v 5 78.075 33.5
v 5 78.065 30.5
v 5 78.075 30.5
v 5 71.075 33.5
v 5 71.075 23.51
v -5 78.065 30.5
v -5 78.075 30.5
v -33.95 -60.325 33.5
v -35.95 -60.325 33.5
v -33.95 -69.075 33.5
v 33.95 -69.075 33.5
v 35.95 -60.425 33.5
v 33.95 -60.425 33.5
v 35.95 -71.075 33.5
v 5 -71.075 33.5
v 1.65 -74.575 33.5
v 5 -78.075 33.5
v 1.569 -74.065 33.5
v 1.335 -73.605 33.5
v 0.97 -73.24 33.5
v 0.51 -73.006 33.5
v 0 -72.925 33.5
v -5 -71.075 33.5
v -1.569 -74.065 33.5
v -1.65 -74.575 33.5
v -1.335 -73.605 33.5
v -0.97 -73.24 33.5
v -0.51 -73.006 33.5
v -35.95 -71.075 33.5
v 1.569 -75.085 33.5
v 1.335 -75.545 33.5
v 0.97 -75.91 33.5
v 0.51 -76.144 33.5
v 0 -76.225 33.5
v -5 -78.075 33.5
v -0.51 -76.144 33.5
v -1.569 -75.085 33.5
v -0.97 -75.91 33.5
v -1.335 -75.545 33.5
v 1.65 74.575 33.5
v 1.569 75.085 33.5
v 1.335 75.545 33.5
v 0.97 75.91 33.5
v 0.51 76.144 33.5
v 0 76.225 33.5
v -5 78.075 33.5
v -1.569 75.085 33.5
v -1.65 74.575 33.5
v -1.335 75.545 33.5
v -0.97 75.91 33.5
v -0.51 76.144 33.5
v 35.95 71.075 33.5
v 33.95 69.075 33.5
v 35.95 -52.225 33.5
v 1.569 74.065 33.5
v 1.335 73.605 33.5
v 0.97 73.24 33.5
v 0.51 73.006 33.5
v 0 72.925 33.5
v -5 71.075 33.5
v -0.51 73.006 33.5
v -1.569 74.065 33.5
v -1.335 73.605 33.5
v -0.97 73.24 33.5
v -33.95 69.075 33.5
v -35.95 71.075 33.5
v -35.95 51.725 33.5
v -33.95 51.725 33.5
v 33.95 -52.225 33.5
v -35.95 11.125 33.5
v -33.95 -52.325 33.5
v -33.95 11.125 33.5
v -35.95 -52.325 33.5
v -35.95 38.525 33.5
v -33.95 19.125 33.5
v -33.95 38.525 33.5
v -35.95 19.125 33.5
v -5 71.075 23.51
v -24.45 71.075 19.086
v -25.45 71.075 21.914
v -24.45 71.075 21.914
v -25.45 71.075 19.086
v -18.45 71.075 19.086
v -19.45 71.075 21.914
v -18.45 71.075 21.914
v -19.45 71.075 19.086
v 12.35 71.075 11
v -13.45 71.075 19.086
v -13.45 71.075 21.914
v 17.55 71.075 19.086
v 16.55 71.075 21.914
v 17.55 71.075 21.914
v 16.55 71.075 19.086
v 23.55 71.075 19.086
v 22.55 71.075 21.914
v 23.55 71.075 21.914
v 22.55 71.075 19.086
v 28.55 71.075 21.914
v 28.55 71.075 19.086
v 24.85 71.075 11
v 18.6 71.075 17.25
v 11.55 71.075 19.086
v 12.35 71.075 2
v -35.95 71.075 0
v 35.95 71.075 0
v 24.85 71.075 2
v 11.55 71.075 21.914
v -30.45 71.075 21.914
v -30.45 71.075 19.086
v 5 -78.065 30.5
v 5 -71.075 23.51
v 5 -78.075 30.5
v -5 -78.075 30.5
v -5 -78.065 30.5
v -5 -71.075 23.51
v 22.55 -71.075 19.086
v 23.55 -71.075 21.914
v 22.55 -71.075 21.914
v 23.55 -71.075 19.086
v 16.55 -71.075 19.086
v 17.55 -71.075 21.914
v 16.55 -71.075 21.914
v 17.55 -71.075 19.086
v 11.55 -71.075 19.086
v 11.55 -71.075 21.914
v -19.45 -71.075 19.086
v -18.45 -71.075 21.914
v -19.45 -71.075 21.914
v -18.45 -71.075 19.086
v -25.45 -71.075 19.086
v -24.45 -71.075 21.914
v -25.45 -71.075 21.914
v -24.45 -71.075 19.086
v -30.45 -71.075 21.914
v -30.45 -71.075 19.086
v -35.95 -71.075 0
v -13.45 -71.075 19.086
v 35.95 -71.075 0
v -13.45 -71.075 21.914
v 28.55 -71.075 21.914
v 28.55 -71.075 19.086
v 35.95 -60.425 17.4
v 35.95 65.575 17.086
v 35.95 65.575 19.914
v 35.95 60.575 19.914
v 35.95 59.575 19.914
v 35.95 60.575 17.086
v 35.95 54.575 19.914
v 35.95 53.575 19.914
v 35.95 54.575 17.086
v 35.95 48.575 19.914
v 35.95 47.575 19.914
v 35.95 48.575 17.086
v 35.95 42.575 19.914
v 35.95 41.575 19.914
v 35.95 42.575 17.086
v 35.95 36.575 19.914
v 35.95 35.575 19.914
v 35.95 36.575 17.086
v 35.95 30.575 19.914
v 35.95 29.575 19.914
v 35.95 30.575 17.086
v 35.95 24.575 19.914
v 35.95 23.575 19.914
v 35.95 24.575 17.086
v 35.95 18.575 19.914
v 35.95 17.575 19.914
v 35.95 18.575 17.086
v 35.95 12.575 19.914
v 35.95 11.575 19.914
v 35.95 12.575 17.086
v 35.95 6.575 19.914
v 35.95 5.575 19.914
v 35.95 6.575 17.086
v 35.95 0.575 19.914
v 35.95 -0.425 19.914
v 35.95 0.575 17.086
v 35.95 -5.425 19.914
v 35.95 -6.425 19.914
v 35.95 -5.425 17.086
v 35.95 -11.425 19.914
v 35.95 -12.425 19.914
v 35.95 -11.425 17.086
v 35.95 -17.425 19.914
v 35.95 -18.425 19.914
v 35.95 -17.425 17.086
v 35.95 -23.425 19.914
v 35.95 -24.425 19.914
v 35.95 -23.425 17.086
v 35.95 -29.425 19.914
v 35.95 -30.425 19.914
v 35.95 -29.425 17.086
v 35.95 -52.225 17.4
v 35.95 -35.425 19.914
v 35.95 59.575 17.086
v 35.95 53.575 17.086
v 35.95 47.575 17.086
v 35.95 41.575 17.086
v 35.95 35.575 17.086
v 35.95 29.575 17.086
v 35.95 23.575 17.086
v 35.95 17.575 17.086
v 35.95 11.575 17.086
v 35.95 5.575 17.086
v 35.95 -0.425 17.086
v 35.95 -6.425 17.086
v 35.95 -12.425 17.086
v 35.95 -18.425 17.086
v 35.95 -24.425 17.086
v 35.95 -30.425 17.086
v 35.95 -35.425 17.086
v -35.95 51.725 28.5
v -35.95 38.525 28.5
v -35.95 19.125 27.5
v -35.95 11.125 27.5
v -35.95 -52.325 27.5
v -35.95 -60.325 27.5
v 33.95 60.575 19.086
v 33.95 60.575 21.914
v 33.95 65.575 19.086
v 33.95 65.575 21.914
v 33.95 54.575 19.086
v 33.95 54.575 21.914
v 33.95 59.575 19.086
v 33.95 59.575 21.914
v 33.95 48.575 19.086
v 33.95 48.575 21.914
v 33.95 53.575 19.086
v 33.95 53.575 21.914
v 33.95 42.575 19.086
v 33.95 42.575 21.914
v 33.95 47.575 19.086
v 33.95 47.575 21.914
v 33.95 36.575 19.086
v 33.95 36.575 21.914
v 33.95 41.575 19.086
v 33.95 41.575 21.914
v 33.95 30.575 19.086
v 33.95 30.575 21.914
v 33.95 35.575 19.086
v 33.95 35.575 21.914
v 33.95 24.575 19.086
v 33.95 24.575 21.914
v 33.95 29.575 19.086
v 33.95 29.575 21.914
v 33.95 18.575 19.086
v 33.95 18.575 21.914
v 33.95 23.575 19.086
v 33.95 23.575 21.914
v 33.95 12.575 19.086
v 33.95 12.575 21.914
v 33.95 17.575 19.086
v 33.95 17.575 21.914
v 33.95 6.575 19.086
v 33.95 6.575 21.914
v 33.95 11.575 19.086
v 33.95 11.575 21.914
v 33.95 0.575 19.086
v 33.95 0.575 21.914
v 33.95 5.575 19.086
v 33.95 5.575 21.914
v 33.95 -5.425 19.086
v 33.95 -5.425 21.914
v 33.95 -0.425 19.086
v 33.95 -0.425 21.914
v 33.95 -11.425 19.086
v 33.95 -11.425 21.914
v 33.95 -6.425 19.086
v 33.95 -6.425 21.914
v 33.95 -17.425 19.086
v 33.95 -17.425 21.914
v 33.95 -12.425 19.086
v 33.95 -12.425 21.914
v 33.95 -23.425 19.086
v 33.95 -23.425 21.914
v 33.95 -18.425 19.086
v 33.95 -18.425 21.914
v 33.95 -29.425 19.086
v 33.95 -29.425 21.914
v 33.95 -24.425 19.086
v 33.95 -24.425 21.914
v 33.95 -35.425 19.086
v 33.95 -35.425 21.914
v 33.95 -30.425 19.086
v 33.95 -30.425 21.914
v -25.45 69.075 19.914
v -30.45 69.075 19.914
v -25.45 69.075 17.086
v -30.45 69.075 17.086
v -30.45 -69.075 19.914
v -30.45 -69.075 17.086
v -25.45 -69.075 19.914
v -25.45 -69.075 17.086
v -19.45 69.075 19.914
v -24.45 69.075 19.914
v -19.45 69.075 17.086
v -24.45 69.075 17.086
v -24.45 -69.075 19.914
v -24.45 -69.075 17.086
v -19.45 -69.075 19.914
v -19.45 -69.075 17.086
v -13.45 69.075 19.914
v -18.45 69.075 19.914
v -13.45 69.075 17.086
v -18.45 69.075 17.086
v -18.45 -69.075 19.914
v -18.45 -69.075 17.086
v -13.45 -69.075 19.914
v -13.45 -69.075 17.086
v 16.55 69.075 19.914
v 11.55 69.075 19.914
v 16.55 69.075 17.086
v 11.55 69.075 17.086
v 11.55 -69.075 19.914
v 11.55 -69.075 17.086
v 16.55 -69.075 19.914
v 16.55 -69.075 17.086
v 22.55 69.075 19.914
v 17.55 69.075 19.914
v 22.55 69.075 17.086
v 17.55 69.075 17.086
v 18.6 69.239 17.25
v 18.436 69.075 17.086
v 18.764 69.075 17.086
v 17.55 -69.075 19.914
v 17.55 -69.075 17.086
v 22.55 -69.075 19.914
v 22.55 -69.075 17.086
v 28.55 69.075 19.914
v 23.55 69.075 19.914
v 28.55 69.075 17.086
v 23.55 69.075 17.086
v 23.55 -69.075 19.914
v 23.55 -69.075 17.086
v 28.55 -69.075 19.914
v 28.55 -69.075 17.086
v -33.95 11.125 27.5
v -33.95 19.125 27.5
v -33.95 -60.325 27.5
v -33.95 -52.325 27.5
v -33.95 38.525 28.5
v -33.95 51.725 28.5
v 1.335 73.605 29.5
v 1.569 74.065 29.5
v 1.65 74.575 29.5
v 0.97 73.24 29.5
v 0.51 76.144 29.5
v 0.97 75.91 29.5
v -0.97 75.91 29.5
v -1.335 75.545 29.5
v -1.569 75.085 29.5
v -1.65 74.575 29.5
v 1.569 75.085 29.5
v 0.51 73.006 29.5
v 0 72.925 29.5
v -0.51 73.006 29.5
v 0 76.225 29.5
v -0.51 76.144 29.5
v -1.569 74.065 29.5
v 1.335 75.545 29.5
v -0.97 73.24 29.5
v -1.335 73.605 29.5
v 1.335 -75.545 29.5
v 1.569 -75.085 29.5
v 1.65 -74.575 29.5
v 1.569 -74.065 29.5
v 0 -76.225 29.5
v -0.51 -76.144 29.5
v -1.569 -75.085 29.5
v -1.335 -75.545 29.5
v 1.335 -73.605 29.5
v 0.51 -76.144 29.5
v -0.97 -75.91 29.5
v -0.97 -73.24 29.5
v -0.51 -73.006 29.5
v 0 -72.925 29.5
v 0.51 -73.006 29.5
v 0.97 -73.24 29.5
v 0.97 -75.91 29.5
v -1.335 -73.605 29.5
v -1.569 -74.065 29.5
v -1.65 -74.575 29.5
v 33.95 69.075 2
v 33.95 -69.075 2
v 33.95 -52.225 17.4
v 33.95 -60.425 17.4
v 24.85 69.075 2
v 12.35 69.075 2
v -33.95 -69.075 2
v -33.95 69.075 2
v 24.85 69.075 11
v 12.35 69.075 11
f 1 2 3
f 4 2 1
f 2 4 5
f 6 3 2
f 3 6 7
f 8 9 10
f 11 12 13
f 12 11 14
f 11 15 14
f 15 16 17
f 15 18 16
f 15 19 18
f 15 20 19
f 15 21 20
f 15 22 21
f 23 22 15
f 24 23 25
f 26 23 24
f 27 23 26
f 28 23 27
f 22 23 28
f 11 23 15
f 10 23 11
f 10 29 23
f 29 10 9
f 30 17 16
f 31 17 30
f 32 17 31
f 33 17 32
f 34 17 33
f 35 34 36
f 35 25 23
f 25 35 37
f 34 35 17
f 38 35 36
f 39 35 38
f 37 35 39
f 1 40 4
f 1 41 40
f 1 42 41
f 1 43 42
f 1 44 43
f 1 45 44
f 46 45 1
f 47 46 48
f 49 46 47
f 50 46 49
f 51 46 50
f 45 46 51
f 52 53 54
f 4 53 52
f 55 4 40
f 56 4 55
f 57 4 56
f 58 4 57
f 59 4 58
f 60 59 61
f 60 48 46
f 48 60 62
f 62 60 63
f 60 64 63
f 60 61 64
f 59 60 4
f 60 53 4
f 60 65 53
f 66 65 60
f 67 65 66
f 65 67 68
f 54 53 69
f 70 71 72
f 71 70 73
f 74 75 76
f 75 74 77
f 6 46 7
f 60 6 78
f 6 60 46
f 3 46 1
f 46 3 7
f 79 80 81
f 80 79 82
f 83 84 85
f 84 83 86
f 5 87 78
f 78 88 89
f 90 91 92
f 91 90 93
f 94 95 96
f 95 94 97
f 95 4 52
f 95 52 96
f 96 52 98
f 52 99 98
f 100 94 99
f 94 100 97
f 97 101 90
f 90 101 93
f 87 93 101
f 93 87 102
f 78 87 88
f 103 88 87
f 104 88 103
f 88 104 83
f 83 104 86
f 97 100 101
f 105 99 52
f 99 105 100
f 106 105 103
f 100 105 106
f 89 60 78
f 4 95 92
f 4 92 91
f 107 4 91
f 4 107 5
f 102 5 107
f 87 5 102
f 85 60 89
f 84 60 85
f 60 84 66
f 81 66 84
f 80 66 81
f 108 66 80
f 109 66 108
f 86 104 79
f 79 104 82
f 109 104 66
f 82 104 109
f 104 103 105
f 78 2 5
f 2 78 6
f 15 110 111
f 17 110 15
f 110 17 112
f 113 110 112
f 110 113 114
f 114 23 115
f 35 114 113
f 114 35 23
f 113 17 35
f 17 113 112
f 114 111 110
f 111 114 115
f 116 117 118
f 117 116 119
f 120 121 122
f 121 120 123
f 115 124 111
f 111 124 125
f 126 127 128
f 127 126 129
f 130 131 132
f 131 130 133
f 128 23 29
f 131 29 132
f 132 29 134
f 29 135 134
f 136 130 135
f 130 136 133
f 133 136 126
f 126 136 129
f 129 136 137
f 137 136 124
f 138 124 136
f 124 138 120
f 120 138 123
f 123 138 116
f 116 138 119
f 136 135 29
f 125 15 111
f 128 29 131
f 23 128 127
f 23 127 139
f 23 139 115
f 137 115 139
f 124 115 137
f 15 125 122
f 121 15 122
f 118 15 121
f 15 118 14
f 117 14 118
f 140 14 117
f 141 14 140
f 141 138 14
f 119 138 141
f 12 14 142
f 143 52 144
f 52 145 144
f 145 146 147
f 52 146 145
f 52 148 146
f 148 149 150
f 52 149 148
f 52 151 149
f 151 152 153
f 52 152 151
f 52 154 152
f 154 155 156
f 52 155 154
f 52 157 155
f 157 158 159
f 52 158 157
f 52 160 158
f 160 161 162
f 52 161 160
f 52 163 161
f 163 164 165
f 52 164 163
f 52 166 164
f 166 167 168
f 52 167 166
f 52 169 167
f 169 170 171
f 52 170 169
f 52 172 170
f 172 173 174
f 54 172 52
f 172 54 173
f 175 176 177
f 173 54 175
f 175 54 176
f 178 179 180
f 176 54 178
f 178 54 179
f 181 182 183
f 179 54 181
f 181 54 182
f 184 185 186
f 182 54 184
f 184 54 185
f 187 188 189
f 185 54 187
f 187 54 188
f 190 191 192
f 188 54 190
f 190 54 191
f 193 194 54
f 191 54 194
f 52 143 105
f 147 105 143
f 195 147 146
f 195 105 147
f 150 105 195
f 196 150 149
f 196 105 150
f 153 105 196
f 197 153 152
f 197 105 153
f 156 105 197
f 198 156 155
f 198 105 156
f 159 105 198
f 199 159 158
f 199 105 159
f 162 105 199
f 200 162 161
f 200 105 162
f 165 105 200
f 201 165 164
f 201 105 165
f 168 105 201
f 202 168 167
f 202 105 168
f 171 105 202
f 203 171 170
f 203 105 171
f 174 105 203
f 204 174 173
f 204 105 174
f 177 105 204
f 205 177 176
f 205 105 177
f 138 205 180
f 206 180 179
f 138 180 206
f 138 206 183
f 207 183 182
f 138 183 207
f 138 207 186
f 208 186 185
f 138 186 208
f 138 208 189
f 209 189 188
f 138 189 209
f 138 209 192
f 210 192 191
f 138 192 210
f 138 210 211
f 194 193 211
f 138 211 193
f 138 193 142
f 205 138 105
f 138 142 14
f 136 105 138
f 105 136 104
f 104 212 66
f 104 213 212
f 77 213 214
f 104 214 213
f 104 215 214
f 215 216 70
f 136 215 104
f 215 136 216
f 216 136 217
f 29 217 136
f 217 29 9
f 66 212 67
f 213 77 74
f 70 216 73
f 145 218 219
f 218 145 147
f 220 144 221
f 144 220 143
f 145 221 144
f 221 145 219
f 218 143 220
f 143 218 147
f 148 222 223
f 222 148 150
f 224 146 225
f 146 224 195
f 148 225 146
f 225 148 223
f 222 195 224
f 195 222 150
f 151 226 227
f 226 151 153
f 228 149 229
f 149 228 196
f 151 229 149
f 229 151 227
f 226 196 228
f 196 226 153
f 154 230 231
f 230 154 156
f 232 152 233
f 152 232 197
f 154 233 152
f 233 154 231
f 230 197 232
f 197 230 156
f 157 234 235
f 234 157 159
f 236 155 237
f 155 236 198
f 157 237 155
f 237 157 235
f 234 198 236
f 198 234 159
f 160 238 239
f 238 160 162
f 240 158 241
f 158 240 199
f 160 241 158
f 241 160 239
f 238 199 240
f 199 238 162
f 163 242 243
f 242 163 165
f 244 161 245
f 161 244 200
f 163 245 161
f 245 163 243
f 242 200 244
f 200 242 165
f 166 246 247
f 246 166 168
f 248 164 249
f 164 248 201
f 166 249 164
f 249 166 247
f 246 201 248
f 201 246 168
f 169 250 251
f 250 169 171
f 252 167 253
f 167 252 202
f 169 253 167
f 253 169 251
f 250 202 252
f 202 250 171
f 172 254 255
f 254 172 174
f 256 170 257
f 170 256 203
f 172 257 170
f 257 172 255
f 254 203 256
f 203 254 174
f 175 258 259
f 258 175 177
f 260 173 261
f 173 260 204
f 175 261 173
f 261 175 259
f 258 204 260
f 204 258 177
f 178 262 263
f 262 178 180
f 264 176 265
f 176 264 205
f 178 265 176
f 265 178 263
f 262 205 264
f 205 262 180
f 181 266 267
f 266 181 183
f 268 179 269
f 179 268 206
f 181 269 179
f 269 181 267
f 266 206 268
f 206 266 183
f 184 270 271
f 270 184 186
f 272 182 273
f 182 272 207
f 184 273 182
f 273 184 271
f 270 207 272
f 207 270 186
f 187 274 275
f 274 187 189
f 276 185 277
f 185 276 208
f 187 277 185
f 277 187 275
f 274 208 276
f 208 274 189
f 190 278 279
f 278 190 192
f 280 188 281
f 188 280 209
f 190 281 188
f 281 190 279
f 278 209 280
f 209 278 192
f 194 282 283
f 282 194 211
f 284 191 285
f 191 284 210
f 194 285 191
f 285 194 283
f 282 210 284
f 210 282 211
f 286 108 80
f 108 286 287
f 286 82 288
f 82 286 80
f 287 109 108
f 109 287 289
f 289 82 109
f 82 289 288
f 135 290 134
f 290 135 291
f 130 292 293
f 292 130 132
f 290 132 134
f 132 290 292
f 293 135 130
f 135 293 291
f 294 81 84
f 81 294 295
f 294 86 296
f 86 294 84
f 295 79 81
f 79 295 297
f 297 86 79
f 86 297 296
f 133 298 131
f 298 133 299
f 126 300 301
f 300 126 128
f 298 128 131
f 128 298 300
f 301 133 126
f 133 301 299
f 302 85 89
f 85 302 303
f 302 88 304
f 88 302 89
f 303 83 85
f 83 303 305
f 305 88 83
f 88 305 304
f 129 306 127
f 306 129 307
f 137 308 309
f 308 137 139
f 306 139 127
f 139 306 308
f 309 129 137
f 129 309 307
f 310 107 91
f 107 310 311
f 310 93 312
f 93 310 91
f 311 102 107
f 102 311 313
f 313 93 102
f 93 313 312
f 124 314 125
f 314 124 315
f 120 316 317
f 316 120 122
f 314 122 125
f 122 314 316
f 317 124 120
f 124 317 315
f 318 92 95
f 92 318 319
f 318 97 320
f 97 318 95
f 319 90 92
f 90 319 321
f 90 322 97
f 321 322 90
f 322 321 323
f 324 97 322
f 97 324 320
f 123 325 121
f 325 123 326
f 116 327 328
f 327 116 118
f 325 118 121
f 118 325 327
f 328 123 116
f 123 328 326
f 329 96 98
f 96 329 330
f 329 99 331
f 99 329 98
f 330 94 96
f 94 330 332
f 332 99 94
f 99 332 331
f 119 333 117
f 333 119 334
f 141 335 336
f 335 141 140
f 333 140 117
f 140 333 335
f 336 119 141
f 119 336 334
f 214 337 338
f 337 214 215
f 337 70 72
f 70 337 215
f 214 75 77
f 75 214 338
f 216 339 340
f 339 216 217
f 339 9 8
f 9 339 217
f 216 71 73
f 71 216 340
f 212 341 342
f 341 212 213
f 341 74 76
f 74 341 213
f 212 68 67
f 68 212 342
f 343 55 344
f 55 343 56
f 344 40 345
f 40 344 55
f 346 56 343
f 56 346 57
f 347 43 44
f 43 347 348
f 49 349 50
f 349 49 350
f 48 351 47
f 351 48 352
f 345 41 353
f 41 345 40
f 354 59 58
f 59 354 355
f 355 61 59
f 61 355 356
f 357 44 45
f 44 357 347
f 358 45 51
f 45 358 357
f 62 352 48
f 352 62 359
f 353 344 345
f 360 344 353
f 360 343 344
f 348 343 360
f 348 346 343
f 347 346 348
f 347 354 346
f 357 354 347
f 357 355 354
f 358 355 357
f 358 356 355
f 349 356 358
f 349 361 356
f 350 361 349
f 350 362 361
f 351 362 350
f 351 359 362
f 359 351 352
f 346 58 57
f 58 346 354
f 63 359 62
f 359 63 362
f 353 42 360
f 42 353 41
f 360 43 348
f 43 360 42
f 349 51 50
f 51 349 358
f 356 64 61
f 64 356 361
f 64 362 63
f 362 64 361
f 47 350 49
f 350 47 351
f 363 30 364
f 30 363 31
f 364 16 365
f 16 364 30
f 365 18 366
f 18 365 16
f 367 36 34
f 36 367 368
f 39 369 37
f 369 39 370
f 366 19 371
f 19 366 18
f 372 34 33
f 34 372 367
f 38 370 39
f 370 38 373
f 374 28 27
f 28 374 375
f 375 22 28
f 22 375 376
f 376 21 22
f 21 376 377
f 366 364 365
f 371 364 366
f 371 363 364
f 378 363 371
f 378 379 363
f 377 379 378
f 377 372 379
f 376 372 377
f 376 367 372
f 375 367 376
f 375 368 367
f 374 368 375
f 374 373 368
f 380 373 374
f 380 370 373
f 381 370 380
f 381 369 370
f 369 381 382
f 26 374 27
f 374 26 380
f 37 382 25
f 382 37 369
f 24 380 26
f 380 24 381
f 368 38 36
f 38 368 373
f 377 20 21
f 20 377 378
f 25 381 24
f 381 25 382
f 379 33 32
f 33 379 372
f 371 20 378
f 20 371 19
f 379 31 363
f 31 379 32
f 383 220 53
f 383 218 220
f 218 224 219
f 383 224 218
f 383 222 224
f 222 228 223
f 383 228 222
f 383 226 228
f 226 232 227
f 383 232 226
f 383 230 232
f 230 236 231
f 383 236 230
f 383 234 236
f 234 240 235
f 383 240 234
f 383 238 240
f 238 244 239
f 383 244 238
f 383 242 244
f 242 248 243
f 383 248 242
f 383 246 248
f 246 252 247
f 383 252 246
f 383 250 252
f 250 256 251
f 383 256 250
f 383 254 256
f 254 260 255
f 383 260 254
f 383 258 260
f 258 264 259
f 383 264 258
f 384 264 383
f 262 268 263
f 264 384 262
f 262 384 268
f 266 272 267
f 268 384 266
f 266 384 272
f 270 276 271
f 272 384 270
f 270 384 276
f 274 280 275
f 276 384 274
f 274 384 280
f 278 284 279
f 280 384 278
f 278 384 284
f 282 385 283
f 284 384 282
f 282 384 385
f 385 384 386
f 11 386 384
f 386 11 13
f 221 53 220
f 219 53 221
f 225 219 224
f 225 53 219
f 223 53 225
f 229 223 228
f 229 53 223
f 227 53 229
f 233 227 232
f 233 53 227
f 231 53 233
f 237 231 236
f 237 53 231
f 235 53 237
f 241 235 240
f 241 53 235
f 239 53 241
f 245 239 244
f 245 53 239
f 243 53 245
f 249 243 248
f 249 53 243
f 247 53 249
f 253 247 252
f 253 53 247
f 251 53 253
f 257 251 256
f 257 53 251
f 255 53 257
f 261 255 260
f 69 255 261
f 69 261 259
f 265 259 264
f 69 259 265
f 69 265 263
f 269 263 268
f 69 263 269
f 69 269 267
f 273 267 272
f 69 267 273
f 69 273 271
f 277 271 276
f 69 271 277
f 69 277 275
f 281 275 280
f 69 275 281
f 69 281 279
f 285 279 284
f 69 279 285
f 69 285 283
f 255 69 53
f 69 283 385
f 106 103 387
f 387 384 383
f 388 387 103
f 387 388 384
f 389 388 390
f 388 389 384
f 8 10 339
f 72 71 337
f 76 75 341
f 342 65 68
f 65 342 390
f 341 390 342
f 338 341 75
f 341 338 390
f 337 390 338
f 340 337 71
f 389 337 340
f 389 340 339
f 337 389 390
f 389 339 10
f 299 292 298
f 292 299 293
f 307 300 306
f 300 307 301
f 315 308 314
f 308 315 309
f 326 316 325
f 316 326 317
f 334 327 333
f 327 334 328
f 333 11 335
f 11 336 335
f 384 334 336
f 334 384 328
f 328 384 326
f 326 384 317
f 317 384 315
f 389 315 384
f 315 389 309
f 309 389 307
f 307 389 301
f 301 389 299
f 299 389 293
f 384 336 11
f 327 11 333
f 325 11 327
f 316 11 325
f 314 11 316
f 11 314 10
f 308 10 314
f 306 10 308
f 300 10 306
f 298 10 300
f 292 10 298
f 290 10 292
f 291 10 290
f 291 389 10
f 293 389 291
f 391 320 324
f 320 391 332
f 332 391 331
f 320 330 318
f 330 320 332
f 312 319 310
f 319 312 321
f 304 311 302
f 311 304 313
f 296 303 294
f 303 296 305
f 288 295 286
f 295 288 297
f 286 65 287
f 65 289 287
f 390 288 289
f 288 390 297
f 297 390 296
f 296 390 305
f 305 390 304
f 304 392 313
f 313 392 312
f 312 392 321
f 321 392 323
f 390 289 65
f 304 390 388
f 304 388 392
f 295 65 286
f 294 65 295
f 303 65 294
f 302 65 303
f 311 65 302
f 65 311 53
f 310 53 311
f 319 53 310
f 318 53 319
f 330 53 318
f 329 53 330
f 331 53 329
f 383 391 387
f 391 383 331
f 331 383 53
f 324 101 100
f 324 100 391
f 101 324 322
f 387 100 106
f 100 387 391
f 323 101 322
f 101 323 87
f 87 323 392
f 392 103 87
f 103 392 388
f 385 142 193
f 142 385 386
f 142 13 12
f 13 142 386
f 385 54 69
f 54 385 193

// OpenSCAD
// file: perfil_impresora.scad
// ==========================================
// Proyecto: piezas3D
// Componente: Perfil de impresora
// Descripción: Holguras y límites de la impresora real. Lo incluyen las piezas con encajes.
// ==========================================

// --- PARÁMETROS Y CONSTANTES ---

// Origen de los valores
perfil_medido = false;      // true solo después de imprimir y medir el peine de calibración
perfil_impresora = "Bambu Lab A1"; // marca y modelo
perfil_material = "PETG";   // las holguras cambian con el material: PLA ≠ PETG ≠ ABS
perfil_boquilla = 0.4;      // [mm]
perfil_fecha = "";          // AAAA-MM-DD de la medición

// Holguras: mm que se suman al diámetro del agujero. Se miden como agujero_elegido − 6,00
holgura_presion = 0.15;     // entra con fuerza y queda fijo sin pegamento
holgura_justo = 0.25;       // entra a mano y sin juego (uso diario)
holgura_deslizante = 0.30;  // se mueve libre, sin juego apreciable
holgura_suelto = 0.40;      // cae solo, con juego visible

// Expansión horizontal por lado: (bloque_medido − 20,00) / 2.
// Positiva = la impresora "engorda" las piezas y los agujeros salen más chicos.
expansion_xy = 0.00;

// Límites de impresión
espesor_min_pared = 1.2;    // [mm]
espesor_min_piso = 0.8;     // [mm]
voladizo_max = 45;          // [°] respecto de la vertical
puente_max = 10;            // [mm]
cama = [256, 256, 256];     // [mm] X, Y, Z (Bambu Lab A1)
margen_cama = 10;           // [mm] por lado

// --- VALIDACIONES ---
assert(holgura_presion < holgura_justo && holgura_justo < holgura_deslizante
       && holgura_deslizante < holgura_suelto,
       "las holguras deben crecer: presión < justo < deslizante < suelto");
assert(cama[0] > 2 * margen_cama && cama[1] > 2 * margen_cama,
       "el margen de la cama no deja superficie útil");

// --- FUNCIONES ---
function holgura(tipo = "justo") =
    tipo == "presion"    ? holgura_presion :
    tipo == "justo"      ? holgura_justo :
    tipo == "deslizante" ? holgura_deslizante :
    tipo == "suelto"     ? holgura_suelto :
    assert(false, str("tipo de holgura desconocido: ", tipo)) 0;

// Superficie útil de la cama (X, Y) descontando el margen
function cama_util() = [cama[0] - 2 * margen_cama, cama[1] - 2 * margen_cama];
// main file
// ==========================================
// Proyecto: piezas3D – Puntero láser estelar
// Componente: Tapa de la electrónica
// Descripción: Cáscara abierta por abajo que cubre las placas (ESP32, relé y 2 ULN2003), el
//              interruptor general y el hueco del cable sobrante, en el lado +X de la plataforma.
//              Rejillas inclinadas a 45° (el agua que cae vertical no entra), abertura para el USB
//              del ESP32, ranura abierta desde abajo para la palanca del interruptor, entradas de
//              cables en la pared −X y 2 orejas M3. Se imprime con el techo sobre la cama.
// ==========================================

// --- PARÁMETROS Y CONSTANTES ---
include <puntero_laser_parametros.scad>

/* [Hidden] */
ancho_rejilla = 2;
largo_rejilla = 15;
paso_rejilla = 6;
z_rejilla = 14;
margen_rejilla = 8;
ancho_ranura_interruptor = d_interruptor + 2;

// --- MÓDULOS PRINCIPALES Y ENSAMBLAJE ---
ensamblaje_principal();

module ensamblaje_principal() {
    pieza_tapa_electronica();
}

// Orientación de impresión: techo sobre la cama, centrada en X e Y.
module pieza_tapa_electronica() {
    translate([0, 0, alto_tapa]) rotate([180, 0, 0])
        translate([-(x_tapa0 + x_tapa1)/2, -(y_tapa0 + y_tapa1)/2, 0])
            tapa_en_posicion();
}

// Tapa en su posición del conjunto (z = 0 sobre la cara superior de la plataforma).
module tapa_en_posicion() {
    difference() {
        union() {
            cascara();
            encastres();
        }
        translate([x_tapa0 + pared_tapa, y_tapa0 + pared_tapa, -1])
            cube([x_tapa1 - x_tapa0 - 2*pared_tapa, y_tapa1 - y_tapa0 - 2*pared_tapa, alto_interior_tapa + 1]);
        rejillas_ventilacion();
        abertura_usb();
        ranura_interruptor();
        entradas_cables();
        for (y = [y_tapa0 - largo_oreja_tapa/2, y_tapa1 + largo_oreja_tapa/2])
            translate([(x_tapa0 + x_tapa1)/2, y, -1]) cylinder(d = m3_d + holgura_tornillo_m3, h = espesor_oreja_tapa + 2, $fn = 20);
    }
}

module cascara() {
    translate([x_tapa0, y_tapa0, 0]) cube([x_tapa1 - x_tapa0, y_tapa1 - y_tapa0, alto_tapa]);
}

// Orejas M3 en los extremos ±Y, con cartela a 45° (sin soportes al imprimir boca abajo) (U-11)
module encastres() {
    xc = (x_tapa0 + x_tapa1)/2;
    for (s = [-1, 1]) {
        y_pared = s < 0 ? y_tapa0 : y_tapa1;
        translate([xc - ancho_oreja_tapa/2, s < 0 ? y_pared - largo_oreja_tapa : y_pared - eps, 0])
            cube([ancho_oreja_tapa, largo_oreja_tapa + eps, espesor_oreja_tapa]);
        translate([xc - ancho_oreja_tapa/2, y_pared, espesor_oreja_tapa - eps])
            rotate([90, 0, 90]) linear_extrude(height = ancho_oreja_tapa)
                polygon(s < 0 ? [[0, 0], [-largo_oreja_tapa, 0], [0, largo_oreja_tapa]]
                              : [[0, 0], [largo_oreja_tapa, 0], [0, largo_oreja_tapa]]);
    }
}

// Rejillas inclinadas a 45°: la boca exterior queda más abajo que la interior (FR-014)
module rejillas_ventilacion() {
    // Pared +X
    for (y = [y_tapa0 + margen_rejilla : paso_rejilla : y_sob0 - margen_rejilla])
        translate([x_tapa1 - pared_tapa/2, y, z_rejilla]) rotate([0, 45, 0])
            cube([ancho_rejilla, largo_rejilla/3, 3*pared_tapa], center = true);
    // Paredes ±Y
    for (x = [x_tapa0 + margen_rejilla : paso_rejilla : x_tapa1 - margen_rejilla])
        if (abs(x - (x_tapa0 + x_tapa1)/2) > ancho_oreja_tapa)
            for (s = [-1, 1])
                translate([x, s < 0 ? y_tapa0 + pared_tapa/2 : y_tapa1 - pared_tapa/2, z_rejilla])
                    rotate([s*45, 0, 0]) cube([largo_rejilla/3, ancho_rejilla, 3*pared_tapa], center = true);
}

// Abertura para el enchufe USB del ESP32 (extremo −Y de su celda), centrada en su conector y del
// tamaño de la funda más la holgura (009). El borde inferior (que queda arriba al imprimir la tapa boca
// abajo) termina a dos aguas a 45°: sin puentes de más de 10 mm.
module abertura_usb() {
    z0 = z_usb_esp32 - alto_abertura_usb/2;
    z1 = z_usb_esp32 + alto_abertura_usb/2;
    translate([x_esp32_c, y_tapa0 + pared_tapa + 1, 0]) rotate([90, 0, 0])
        linear_extrude(height = pared_tapa + 2)
            polygon([[-ancho_abertura_usb/2, z1], [ancho_abertura_usb/2, z1],
                     [ancho_abertura_usb/2, z0], [0, z0 - ancho_abertura_usb/2], [-ancho_abertura_usb/2, z0]]);
}

// Ranura abierta desde abajo para la palanca del interruptor (la tapa sale sin desmontarlo)
module ranura_interruptor() {
    translate([x_tapa1 - pared_tapa - 1, y_interruptor - ancho_ranura_interruptor/2, -1])
        cube([pared_tapa + 2, ancho_ranura_interruptor, alto_interruptor + 1 + ancho_ranura_interruptor/2]);
}

// Entradas de cables en la pared −X: conducto, cable del motor de altura y del motor de azimut
module entradas_cables() {
    translate([x_tapa0 - 1, y_conducto - ancho_canal/2 - pared_canal - 1, -1])
        cube([pared_tapa + 2, ancho_canal + 2*pared_canal + 2, altura_max_canal + 2]);
    for (y = [y_entrada_motor_alt, y_entrada_motor_az])
        translate([x_tapa0 - 1, y - ancho_entrada_cable/2, -1])
            cube([pared_tapa + 2, ancho_entrada_cable, alto_entrada_cable + 1]);
    assert(y_entrada_motor_az + ancho_entrada_cable/2 < y_tapa1 - pared_tapa,
           "alto_sobrante_cables: la entrada del cable del motor de azimut queda fuera de la tapa");
}
